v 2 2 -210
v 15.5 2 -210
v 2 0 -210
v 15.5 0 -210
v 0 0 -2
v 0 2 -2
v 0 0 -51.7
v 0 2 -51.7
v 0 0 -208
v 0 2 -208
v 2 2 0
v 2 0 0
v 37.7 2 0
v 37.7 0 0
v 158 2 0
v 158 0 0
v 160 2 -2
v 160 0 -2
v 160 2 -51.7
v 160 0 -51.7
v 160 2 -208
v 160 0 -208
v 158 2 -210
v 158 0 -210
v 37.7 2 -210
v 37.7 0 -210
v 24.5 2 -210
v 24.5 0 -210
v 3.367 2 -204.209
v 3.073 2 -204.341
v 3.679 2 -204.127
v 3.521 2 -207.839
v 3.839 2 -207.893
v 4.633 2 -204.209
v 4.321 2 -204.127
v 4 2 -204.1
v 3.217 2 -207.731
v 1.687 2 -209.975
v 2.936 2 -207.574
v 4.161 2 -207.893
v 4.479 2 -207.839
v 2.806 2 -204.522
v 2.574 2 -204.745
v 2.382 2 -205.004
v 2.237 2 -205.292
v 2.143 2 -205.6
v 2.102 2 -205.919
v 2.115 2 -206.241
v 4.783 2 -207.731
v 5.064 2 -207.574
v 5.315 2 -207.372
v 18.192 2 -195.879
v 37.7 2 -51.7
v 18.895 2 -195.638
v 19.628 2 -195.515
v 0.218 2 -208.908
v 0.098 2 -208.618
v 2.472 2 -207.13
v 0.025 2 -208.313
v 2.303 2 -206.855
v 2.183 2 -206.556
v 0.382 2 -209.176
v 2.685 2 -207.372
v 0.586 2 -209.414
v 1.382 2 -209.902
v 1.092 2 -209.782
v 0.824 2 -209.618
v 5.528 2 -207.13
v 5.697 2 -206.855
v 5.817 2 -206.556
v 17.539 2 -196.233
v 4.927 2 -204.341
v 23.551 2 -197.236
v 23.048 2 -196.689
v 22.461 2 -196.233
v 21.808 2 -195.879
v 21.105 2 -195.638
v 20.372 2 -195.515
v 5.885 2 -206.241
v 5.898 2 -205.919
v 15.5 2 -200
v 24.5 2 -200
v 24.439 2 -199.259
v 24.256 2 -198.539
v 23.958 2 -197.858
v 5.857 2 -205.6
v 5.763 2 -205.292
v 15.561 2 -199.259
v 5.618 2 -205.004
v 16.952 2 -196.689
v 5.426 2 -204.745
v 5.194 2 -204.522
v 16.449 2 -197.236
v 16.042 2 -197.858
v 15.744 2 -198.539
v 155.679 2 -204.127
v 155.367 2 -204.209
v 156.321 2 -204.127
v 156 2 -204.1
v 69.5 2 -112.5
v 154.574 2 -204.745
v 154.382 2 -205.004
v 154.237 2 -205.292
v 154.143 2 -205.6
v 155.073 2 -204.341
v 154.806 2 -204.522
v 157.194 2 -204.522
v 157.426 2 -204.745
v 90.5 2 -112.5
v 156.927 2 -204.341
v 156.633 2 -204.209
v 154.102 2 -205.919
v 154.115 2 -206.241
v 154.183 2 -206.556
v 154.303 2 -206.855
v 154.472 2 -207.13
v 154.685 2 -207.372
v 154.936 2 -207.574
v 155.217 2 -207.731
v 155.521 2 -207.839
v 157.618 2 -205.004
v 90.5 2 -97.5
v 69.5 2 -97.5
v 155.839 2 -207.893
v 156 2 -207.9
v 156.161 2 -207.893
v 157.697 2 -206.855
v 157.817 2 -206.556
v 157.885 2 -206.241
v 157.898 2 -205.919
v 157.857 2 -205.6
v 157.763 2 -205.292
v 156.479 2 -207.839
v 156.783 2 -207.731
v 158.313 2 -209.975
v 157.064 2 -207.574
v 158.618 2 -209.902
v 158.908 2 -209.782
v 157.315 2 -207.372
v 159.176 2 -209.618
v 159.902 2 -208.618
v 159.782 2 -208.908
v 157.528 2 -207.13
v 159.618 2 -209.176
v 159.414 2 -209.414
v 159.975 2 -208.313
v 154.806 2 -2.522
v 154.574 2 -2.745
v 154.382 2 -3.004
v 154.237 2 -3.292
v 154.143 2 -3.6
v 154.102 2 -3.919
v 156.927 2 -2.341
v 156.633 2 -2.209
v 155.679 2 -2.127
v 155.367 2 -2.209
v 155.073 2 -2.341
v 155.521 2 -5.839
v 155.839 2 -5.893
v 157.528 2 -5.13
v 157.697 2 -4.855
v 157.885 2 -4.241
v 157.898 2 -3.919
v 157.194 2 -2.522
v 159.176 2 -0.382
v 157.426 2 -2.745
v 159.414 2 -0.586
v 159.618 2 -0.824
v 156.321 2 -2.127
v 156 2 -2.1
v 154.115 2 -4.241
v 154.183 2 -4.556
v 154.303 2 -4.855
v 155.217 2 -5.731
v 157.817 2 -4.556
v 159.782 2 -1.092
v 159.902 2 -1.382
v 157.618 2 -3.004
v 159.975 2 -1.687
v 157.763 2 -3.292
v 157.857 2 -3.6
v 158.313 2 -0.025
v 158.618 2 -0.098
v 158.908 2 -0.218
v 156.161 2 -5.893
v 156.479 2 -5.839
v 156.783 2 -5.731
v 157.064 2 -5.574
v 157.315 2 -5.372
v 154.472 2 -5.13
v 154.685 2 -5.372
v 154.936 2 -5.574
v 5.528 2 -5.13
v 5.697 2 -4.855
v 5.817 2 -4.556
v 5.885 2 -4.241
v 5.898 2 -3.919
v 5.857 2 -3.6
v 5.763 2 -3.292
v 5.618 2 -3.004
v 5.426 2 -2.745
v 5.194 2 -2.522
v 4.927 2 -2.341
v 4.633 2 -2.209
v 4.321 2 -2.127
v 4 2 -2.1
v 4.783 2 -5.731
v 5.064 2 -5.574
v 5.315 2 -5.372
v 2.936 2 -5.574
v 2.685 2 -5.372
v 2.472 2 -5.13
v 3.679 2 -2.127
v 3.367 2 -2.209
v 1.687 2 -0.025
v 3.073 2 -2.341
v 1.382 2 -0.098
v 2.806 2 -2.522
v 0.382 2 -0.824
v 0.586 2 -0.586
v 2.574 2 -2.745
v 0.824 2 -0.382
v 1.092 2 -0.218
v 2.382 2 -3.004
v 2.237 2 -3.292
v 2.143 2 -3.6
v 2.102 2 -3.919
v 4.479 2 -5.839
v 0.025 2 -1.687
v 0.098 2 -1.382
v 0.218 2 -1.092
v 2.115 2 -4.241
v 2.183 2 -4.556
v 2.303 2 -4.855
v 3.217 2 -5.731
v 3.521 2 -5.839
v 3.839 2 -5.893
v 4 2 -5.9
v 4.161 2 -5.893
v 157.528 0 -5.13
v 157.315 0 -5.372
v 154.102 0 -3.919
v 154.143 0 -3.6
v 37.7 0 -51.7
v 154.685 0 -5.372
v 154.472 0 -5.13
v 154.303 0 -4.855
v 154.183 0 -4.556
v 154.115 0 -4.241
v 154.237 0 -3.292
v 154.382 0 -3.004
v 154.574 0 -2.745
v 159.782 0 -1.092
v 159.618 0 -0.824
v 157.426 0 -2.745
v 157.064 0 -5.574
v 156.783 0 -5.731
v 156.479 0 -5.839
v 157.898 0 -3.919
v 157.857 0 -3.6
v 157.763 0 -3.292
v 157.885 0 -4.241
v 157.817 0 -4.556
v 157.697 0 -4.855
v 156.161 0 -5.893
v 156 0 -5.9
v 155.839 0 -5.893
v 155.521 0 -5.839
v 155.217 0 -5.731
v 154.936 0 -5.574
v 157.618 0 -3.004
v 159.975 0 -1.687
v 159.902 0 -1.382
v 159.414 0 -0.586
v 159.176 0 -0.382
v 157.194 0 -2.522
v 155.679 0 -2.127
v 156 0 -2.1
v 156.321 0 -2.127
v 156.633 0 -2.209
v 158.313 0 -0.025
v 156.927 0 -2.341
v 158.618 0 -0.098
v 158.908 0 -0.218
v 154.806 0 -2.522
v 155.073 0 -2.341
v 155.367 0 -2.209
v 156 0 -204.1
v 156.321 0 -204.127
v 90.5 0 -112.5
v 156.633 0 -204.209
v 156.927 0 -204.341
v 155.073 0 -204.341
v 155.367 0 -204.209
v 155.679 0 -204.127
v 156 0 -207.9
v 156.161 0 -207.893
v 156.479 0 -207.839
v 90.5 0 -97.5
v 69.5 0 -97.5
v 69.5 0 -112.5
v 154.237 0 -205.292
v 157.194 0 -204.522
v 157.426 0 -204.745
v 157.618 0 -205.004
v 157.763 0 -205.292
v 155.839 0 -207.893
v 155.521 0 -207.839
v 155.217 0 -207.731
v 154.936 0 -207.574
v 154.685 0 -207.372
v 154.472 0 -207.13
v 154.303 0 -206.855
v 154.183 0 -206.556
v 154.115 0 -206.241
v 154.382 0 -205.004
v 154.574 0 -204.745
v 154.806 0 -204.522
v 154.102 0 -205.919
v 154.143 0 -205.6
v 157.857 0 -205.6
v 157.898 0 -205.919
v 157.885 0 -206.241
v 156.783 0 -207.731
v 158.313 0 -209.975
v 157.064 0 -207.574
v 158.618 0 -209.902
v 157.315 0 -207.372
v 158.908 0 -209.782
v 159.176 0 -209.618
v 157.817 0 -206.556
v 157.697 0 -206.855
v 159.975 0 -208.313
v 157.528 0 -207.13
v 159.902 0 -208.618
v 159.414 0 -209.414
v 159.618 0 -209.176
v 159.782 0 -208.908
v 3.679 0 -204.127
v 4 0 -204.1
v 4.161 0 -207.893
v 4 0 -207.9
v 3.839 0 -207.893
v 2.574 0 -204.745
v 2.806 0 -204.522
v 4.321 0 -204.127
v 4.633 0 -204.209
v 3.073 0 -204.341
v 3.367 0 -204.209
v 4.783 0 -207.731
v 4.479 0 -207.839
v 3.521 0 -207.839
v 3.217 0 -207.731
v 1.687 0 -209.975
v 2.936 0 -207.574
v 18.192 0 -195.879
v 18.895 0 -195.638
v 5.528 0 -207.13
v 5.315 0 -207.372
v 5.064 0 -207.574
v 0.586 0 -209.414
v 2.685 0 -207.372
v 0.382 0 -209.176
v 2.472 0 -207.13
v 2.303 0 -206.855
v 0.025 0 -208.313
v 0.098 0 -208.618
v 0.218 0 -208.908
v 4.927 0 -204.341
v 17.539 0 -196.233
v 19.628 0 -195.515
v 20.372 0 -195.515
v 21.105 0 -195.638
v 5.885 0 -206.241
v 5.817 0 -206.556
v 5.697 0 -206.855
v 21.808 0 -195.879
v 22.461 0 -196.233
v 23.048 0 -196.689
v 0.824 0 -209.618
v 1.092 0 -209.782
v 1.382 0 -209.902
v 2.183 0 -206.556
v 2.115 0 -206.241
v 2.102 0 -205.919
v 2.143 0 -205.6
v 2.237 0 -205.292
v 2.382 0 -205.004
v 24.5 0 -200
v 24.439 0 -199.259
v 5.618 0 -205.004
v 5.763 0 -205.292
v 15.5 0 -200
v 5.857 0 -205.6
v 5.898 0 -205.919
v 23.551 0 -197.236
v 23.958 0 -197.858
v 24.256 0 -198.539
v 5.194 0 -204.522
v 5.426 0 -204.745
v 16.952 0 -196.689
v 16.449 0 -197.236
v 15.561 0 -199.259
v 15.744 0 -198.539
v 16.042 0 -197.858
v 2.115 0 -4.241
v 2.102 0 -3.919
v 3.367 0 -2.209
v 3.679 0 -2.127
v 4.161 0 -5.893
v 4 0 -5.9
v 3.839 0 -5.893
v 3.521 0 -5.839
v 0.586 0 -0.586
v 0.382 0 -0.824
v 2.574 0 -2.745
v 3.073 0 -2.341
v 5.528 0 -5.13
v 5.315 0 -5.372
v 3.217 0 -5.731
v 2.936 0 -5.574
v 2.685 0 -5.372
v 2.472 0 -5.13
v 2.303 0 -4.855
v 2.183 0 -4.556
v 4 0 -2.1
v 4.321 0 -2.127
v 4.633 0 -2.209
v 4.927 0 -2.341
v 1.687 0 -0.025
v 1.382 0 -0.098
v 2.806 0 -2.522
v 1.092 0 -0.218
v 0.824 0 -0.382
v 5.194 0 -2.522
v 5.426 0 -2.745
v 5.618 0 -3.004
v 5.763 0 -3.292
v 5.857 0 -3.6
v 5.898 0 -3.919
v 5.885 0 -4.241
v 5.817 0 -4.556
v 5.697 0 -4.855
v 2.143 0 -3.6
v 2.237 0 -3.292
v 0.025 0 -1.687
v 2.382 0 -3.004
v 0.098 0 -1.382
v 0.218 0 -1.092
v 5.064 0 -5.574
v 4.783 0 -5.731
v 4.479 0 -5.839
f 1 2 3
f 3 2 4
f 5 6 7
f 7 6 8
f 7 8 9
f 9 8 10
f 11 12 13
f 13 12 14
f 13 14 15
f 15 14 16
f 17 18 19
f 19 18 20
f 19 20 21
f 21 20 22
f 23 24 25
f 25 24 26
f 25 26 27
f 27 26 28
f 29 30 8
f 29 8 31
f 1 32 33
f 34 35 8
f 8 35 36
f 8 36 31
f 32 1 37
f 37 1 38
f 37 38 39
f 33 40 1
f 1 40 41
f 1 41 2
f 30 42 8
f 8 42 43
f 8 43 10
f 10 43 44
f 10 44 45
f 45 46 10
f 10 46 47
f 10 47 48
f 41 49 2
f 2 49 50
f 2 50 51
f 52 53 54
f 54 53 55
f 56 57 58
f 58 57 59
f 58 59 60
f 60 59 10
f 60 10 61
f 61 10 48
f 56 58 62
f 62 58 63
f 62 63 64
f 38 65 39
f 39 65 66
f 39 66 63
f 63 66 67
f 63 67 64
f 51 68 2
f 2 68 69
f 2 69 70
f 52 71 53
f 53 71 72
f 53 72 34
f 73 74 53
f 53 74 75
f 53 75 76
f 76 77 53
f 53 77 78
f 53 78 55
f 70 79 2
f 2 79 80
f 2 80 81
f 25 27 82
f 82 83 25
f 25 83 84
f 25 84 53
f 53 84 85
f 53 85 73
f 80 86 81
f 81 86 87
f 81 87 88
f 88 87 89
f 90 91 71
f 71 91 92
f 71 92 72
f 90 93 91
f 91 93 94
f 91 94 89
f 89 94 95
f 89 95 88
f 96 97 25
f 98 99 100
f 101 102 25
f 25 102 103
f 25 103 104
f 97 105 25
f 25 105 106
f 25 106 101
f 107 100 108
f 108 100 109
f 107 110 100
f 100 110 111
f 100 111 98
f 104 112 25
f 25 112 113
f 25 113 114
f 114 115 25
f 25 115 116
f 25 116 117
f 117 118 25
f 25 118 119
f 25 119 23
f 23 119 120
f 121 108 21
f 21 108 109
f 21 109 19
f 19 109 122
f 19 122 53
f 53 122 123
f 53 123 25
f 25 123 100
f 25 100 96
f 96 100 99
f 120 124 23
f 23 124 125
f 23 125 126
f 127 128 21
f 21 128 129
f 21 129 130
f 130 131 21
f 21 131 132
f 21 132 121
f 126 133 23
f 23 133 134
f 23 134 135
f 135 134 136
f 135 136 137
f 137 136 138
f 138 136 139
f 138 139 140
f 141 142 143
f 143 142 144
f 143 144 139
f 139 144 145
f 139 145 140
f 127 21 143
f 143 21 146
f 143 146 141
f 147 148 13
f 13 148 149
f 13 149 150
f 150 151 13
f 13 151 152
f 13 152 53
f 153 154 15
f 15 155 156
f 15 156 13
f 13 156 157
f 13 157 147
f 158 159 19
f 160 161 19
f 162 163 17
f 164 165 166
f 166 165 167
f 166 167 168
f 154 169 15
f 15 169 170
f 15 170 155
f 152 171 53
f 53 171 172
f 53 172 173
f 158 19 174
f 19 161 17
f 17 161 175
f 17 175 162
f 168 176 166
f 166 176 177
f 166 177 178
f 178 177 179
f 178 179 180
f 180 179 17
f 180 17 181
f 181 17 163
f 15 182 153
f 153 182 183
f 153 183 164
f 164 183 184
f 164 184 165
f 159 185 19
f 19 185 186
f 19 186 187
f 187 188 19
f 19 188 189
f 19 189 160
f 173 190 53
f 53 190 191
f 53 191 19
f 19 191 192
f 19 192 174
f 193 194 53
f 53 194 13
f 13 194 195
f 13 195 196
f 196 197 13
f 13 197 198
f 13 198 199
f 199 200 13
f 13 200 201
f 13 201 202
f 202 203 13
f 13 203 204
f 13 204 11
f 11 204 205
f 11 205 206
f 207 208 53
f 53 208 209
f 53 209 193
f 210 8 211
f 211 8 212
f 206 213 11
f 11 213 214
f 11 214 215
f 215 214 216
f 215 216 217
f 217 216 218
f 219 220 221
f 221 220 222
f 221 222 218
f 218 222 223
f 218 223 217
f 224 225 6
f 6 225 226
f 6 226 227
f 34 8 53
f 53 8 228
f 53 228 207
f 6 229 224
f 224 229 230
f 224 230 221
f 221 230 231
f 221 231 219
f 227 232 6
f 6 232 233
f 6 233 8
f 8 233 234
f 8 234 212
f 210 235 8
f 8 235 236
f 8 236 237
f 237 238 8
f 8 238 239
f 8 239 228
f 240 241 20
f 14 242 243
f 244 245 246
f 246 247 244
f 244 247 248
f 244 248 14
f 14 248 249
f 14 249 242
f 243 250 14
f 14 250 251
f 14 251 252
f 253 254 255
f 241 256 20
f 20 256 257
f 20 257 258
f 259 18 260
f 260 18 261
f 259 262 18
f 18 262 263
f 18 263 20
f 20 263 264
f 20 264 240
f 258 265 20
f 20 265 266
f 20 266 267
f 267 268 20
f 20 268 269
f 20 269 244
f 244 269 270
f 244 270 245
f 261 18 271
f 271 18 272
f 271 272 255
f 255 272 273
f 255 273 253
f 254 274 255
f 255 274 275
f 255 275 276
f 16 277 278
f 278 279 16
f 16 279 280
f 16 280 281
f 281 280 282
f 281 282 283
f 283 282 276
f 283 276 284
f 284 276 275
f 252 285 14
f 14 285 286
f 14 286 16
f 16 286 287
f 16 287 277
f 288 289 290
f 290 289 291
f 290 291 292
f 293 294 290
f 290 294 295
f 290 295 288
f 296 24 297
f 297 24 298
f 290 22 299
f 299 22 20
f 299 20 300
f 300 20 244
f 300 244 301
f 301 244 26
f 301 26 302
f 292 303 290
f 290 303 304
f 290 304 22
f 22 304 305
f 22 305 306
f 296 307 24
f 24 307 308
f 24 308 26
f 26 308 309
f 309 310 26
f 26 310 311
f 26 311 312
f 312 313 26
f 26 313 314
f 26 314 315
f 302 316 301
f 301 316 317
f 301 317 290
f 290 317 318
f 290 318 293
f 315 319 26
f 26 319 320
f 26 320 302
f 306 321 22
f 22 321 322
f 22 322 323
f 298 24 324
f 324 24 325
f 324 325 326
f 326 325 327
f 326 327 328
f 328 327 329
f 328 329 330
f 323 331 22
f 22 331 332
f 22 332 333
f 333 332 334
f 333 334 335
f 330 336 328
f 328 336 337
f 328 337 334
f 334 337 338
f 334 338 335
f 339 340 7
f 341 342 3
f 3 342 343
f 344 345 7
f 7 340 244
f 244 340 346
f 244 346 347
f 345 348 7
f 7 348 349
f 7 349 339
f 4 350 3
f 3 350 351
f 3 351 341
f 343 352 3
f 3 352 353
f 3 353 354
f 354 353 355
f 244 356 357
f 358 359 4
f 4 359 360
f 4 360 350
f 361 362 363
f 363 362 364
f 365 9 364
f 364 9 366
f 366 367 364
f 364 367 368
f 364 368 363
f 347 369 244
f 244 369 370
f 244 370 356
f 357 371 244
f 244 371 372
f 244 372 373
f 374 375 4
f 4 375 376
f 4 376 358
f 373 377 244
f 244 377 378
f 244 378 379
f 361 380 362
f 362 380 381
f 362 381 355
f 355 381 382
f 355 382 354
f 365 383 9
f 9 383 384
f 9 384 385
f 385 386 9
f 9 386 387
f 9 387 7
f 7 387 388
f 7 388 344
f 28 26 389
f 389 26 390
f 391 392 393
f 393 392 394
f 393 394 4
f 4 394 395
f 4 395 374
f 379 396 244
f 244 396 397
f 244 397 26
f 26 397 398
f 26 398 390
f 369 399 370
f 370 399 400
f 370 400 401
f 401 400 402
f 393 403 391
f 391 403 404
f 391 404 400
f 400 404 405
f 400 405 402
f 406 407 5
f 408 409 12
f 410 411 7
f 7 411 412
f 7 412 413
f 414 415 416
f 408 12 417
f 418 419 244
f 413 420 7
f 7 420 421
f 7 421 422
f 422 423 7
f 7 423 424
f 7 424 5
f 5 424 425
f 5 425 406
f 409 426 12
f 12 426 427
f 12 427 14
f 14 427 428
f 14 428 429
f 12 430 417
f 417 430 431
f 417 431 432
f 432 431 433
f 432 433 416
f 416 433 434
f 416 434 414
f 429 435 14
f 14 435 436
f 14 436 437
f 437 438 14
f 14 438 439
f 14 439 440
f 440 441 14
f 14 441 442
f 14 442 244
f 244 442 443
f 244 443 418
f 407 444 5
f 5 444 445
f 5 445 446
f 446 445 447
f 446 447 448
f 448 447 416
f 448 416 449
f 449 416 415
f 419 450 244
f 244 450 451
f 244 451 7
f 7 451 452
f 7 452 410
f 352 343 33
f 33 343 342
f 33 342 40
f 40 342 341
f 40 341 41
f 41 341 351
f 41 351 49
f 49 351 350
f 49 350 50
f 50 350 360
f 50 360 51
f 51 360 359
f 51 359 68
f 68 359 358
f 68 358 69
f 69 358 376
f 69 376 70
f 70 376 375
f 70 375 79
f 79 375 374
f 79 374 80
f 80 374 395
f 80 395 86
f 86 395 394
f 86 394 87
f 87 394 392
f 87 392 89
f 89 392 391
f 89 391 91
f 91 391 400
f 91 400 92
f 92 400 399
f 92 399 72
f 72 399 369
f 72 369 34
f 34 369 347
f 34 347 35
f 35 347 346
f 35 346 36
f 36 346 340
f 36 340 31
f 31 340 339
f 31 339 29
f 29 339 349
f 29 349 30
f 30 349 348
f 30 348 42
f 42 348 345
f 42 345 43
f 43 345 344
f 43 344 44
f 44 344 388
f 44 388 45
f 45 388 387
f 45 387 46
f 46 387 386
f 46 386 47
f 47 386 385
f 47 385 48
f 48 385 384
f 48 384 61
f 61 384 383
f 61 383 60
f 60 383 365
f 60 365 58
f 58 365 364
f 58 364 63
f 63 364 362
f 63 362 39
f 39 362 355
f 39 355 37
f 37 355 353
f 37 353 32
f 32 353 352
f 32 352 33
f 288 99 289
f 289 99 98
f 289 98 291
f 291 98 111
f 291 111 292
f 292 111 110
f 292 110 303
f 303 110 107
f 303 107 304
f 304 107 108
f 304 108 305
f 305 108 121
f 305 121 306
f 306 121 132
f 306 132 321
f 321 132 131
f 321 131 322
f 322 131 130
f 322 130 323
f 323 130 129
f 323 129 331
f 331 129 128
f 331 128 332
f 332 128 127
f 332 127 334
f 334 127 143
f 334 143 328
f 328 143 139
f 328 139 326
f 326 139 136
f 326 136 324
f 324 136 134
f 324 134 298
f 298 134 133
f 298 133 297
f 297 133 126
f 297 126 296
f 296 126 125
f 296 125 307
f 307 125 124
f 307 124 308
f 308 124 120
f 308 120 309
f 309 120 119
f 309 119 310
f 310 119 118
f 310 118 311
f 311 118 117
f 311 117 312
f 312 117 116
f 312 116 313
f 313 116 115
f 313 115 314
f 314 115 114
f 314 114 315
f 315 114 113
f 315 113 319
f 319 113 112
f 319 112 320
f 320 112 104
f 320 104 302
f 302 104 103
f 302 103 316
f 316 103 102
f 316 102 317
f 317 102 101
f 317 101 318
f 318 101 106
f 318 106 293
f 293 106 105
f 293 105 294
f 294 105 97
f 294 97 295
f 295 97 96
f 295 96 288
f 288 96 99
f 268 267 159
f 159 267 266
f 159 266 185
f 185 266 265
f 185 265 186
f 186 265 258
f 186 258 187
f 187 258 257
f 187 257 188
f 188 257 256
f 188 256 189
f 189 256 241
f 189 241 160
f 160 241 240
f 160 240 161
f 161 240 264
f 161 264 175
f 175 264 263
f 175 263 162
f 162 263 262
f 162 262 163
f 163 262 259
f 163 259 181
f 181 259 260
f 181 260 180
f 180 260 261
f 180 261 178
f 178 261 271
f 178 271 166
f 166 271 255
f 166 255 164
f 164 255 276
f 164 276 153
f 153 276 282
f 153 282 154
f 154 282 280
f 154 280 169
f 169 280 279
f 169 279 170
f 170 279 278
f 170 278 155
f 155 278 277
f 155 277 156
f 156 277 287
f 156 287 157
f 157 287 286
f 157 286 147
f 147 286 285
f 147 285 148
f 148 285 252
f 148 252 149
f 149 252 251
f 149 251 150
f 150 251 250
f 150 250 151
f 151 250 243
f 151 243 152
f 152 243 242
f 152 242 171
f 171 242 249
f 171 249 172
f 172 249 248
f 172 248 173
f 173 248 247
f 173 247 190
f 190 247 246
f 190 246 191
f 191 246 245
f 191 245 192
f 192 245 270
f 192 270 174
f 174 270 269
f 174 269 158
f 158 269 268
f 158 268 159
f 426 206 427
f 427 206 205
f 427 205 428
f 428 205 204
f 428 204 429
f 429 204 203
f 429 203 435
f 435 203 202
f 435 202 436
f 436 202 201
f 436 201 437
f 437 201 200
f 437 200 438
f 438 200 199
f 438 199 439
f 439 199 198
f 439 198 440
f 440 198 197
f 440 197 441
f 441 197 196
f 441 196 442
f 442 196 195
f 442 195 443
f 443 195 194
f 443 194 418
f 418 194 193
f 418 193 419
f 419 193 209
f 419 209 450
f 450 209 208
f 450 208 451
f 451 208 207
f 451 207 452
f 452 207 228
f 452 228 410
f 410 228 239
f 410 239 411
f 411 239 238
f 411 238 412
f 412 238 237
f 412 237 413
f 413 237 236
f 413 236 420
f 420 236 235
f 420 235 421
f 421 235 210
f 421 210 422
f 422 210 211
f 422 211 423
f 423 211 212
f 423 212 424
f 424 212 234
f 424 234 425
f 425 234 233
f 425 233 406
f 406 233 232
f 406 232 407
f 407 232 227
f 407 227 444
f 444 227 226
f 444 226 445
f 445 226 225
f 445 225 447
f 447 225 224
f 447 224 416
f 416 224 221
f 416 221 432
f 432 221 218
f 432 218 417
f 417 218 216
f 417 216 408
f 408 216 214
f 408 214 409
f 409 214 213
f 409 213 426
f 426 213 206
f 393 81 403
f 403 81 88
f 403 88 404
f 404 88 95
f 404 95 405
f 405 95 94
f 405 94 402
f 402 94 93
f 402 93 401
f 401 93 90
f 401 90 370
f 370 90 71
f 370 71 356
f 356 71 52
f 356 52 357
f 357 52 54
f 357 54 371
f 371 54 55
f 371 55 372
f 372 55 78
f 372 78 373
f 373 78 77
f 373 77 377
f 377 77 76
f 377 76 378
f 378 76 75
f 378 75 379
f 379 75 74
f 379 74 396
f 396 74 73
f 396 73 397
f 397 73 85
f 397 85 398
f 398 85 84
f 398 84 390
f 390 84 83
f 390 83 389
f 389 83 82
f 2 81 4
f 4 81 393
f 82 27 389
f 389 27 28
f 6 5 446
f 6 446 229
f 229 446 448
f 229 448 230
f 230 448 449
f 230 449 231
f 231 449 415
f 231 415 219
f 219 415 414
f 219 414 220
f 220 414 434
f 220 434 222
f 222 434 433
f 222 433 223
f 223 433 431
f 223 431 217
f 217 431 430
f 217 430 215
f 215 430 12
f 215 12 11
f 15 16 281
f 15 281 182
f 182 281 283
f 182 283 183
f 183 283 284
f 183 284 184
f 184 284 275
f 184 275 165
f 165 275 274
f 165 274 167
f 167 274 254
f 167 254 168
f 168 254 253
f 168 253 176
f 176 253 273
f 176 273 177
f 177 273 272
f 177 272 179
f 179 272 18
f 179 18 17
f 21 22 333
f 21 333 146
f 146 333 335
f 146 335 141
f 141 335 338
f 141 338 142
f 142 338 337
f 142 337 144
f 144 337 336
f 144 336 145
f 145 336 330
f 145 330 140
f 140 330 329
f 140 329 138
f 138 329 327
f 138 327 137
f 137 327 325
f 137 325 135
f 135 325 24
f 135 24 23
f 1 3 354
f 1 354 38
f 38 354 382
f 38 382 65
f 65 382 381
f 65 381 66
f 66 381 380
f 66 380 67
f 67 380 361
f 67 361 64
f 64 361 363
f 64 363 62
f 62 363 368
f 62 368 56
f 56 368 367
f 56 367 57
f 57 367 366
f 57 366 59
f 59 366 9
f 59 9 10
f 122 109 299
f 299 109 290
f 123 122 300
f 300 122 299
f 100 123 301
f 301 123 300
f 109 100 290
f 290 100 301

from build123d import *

# Parameters (mm, degrees)
SKETCH1_W           = 160
SKETCH1_H           = 210
BOSS_EXTRUDE1_DEPTH = 2
SKETCH2_R           = 1.9
CUT_EXTRUDE1_DEPTH  = 10
FILLET1_R           = 2
SKETCH3_W           = 21
SKETCH3_H           = 15
CUT_EXTRUDE2_DEPTH  = 10


with BuildPart() as part:
    # Sketch1 → Boss-Extrude1 (new body)
    with BuildSketch(Plane(origin=(0, 0, 0), x_dir=(1, 0, 0), z_dir=(0, 1, 0))):
        with Locations((80, 105)):
            Rectangle(SKETCH1_W, SKETCH1_H)
    extrude(amount=BOSS_EXTRUDE1_DEPTH)

    # Sketch2 → Cut-Extrude1 (cut)
    with BuildSketch(Plane(origin=(0, 2, 0), x_dir=(1, 0, 0), z_dir=(0, 1, 0))):
        with Locations(Location((4, 206, 0), (0, 0, 270))):
            Circle(SKETCH2_R)
        with Locations(Location((156, 206, 0), (0, 0, 90))):
            Circle(SKETCH2_R)
        with Locations(Location((156, 4, 0), (0, 0, 270))):
            Circle(SKETCH2_R)
        with Locations(Location((4, 4, 0), (0, 0, 90))):
            Circle(SKETCH2_R)
        with BuildLine():
            Line((24.5, 200), (24.5, 210))
            Line((24.5, 210), (15.5, 210))
            Line((15.5, 210), (15.5, 200))
            ThreePointArc((15.5, 200), (20, 195.5), (24.5, 200))
        make_face()
    extrude(amount=-CUT_EXTRUDE1_DEPTH, mode=Mode.SUBTRACT)

    # Fillet1
    fillet1_edges = [part.edges().sort_by_distance(p)[0] for p in [
        (0, 1, -210),
        (160, 1, -210),
        (160, 1, 0),
        (0, 1, 0),
    ]]
    fillet(fillet1_edges, radius=FILLET1_R)

    # Sketch3 → Cut-Extrude2 (cut)
    with BuildSketch(Plane(origin=(0, 2, 0), x_dir=(1, 0, 0), z_dir=(0, 1, 0))):
        with Locations((80, 105)):
            Rectangle(SKETCH3_W, SKETCH3_H)
    extrude(amount=-CUT_EXTRUDE2_DEPTH, mode=Mode.SUBTRACT)


solid = part.part
